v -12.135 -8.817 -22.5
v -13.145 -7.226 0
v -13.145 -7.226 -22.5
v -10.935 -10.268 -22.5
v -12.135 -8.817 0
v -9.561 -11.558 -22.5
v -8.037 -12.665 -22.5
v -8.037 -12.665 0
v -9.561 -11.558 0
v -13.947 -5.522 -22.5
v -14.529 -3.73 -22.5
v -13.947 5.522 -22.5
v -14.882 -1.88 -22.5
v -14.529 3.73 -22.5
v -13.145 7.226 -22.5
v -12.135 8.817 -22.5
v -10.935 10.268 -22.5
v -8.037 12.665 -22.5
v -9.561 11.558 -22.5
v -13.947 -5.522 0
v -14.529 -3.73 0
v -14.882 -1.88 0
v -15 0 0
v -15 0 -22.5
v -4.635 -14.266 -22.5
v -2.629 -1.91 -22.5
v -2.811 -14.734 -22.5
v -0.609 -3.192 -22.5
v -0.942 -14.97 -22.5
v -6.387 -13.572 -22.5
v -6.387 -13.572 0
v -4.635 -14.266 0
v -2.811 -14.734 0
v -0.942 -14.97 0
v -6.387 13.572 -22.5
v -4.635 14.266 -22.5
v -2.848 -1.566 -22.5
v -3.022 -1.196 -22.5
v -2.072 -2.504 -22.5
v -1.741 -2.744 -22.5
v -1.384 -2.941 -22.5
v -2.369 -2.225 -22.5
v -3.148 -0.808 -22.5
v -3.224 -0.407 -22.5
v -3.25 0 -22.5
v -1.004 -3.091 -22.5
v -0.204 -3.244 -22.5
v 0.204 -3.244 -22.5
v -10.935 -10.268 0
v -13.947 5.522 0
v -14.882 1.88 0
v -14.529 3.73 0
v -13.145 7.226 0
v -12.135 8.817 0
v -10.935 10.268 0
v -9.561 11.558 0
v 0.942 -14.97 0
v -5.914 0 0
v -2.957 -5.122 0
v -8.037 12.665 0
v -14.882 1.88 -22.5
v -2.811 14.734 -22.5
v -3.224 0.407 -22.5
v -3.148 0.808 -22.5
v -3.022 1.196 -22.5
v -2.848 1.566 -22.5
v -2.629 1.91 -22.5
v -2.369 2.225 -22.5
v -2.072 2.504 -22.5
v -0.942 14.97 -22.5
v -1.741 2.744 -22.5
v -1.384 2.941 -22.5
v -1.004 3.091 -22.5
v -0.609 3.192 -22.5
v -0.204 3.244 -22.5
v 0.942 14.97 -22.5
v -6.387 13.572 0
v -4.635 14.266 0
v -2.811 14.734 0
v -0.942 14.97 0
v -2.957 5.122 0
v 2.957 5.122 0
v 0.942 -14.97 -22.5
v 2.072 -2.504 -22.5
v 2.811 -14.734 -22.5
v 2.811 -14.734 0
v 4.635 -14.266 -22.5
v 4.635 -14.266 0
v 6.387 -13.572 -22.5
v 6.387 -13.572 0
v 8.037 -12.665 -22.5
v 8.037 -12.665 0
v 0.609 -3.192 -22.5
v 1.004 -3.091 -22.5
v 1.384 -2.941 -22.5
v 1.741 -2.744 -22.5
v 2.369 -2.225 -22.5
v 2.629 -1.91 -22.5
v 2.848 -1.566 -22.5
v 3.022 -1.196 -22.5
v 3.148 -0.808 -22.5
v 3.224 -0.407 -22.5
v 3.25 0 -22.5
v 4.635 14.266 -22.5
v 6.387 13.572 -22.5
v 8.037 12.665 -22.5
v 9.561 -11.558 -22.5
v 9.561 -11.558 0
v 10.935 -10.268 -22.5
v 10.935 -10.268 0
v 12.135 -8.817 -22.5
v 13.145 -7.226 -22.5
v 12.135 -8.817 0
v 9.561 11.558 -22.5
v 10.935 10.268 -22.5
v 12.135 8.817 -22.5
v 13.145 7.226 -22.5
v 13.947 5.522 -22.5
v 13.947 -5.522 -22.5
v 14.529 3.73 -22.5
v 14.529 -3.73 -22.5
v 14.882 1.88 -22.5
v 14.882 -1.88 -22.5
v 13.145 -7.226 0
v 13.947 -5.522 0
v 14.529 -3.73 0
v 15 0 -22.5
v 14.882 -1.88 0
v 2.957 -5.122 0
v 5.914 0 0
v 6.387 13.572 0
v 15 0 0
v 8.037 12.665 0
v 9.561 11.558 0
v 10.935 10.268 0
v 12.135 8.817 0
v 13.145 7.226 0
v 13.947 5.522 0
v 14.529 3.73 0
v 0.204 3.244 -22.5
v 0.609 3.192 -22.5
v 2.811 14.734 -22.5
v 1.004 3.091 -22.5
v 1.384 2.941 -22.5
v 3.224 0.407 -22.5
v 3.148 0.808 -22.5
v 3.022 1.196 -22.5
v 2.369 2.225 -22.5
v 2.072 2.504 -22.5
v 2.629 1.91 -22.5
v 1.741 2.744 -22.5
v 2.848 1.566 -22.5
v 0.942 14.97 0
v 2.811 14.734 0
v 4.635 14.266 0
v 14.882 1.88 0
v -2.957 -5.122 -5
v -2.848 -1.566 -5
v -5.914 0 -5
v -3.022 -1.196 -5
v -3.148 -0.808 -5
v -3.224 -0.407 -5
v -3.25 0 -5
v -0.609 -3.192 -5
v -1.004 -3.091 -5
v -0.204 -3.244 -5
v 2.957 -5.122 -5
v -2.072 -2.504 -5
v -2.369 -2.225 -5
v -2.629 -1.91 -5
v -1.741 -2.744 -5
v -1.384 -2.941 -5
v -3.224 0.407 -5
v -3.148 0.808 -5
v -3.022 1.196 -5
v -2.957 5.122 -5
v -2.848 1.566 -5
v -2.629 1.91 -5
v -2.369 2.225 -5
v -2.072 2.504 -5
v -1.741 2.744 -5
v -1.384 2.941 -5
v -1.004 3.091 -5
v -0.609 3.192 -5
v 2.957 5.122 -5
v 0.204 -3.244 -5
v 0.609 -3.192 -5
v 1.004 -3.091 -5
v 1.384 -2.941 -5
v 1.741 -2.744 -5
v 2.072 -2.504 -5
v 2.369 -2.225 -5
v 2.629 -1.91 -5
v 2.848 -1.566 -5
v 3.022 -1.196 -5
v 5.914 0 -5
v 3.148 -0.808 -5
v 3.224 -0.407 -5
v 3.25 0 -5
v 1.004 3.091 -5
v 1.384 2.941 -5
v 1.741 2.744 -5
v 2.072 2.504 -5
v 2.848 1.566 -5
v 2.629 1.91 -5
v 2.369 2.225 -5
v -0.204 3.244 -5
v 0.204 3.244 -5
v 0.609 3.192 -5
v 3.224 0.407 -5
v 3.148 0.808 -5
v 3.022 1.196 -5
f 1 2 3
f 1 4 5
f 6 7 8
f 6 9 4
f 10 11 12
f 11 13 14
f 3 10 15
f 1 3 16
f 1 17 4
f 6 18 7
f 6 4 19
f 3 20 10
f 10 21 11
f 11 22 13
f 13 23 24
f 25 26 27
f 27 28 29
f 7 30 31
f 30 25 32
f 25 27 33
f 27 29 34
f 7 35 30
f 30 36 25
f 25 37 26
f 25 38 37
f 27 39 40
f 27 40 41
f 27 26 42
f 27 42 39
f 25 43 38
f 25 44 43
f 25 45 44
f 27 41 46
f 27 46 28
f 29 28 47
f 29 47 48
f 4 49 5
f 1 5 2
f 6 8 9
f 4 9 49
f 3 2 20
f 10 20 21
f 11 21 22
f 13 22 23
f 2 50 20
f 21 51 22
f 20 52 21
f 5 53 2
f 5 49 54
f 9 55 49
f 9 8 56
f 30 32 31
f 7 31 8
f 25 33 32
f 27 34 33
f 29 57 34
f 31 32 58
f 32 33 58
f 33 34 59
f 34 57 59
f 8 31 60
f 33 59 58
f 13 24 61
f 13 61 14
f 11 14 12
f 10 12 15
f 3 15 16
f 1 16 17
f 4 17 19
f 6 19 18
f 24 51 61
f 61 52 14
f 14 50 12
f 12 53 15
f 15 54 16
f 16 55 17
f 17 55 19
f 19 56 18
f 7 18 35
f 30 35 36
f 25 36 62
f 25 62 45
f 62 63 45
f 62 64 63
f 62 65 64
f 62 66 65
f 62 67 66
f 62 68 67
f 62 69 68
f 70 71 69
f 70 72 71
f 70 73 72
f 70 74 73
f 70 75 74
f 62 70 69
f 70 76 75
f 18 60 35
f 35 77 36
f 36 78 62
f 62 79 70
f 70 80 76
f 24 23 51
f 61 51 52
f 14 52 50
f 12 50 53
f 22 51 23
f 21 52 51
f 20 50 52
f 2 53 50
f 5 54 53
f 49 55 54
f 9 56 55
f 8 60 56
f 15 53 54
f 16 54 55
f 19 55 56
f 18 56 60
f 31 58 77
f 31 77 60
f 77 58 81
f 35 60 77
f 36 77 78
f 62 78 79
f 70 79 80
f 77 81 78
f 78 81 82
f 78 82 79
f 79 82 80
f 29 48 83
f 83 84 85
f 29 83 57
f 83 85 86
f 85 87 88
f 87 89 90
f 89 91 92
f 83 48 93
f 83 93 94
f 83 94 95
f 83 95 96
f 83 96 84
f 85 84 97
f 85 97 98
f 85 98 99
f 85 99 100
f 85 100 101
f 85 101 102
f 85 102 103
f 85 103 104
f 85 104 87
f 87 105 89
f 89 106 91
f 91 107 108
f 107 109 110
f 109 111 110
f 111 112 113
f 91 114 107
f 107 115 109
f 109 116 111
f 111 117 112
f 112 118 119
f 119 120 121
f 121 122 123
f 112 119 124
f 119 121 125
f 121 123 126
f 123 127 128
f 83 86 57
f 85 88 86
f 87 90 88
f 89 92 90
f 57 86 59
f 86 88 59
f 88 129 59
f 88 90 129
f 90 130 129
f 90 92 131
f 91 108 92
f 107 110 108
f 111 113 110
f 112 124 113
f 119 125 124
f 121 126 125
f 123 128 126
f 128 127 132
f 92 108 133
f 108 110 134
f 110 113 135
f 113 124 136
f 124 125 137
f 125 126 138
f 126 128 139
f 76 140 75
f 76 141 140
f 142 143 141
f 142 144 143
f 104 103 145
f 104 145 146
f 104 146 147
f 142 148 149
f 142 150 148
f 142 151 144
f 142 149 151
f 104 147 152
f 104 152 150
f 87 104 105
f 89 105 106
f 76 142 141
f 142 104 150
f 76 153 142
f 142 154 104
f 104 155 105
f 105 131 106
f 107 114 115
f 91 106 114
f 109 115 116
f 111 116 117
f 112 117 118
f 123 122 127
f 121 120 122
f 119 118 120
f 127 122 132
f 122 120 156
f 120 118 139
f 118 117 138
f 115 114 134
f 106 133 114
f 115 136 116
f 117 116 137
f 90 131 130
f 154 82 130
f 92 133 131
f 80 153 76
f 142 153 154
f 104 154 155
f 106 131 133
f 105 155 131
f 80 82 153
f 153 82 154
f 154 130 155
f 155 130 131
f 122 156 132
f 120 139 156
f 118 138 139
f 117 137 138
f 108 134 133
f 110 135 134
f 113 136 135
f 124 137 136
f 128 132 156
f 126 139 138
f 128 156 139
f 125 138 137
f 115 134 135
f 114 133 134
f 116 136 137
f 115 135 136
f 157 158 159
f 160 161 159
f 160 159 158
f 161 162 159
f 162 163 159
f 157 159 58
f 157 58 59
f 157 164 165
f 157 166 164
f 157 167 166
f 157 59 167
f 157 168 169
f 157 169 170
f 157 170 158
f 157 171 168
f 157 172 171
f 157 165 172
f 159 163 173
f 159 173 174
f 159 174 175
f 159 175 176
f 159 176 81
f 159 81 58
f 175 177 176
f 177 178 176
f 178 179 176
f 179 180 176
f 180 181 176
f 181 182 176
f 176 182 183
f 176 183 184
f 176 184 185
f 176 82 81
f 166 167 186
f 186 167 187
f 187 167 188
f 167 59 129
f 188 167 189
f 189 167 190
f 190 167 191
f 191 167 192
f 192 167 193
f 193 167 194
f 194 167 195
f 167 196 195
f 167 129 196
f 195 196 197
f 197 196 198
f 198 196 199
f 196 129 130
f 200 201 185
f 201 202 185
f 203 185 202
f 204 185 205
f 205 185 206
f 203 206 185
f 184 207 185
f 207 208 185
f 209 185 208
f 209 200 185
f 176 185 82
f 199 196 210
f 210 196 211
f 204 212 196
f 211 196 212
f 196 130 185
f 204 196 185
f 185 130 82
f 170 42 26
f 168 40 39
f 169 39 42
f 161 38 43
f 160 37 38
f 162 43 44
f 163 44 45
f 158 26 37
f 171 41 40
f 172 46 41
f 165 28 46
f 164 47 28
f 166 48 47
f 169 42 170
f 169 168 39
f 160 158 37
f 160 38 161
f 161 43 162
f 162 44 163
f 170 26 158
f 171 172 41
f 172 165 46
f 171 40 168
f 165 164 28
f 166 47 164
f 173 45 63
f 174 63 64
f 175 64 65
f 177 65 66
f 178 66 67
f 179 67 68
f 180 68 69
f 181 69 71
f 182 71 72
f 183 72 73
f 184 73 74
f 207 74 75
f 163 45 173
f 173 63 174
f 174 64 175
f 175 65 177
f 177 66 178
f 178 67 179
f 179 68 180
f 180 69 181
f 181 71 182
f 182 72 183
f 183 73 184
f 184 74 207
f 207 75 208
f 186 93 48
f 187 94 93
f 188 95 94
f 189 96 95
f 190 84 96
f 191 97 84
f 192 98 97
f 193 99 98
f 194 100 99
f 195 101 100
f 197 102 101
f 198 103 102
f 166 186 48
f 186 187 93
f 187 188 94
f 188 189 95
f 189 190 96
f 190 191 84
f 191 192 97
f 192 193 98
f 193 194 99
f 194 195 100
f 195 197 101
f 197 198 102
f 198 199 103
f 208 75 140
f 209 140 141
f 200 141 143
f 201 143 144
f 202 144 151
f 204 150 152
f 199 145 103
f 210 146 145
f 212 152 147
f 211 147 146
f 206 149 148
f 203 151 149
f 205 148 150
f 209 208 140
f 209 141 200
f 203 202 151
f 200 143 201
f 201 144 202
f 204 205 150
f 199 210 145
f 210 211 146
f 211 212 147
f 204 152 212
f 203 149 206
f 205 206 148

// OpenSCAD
$fn = 50;


difference() {
	union() {
		translate(v = [0, 0, -22.5000000000]) {
			cylinder(h = 22.5000000000, r = 15.0000000000);
		}
		#translate(v = [0, 0, -24.0000000000]) {
			cylinder(h = 24, r = 2.8750000000);
		}
	}
	union() {
		translate(v = [0, 0, 0]) {
			rotate(a = [0, 0, 0]) {
				difference() {
					union() {
						translate(v = [0, 0, -5]) {
							linear_extrude(height = 5) {
								polygon(points = [[5.9142500000, 0.0000000000], [2.9571250000, 5.1218907443], [-2.9571250000, 5.1218907443], [-5.9142500000, 0.0000000000], [-2.9571250000, -5.1218907443], [2.9571250000, -5.1218907443]]);
							}
						}
					}
					union();
				}
			}
		}
		#translate(v = [0, 0, -100.0000000000]) {
			cylinder(h = 200, r = 3.2500000000);
		}
	}
}
